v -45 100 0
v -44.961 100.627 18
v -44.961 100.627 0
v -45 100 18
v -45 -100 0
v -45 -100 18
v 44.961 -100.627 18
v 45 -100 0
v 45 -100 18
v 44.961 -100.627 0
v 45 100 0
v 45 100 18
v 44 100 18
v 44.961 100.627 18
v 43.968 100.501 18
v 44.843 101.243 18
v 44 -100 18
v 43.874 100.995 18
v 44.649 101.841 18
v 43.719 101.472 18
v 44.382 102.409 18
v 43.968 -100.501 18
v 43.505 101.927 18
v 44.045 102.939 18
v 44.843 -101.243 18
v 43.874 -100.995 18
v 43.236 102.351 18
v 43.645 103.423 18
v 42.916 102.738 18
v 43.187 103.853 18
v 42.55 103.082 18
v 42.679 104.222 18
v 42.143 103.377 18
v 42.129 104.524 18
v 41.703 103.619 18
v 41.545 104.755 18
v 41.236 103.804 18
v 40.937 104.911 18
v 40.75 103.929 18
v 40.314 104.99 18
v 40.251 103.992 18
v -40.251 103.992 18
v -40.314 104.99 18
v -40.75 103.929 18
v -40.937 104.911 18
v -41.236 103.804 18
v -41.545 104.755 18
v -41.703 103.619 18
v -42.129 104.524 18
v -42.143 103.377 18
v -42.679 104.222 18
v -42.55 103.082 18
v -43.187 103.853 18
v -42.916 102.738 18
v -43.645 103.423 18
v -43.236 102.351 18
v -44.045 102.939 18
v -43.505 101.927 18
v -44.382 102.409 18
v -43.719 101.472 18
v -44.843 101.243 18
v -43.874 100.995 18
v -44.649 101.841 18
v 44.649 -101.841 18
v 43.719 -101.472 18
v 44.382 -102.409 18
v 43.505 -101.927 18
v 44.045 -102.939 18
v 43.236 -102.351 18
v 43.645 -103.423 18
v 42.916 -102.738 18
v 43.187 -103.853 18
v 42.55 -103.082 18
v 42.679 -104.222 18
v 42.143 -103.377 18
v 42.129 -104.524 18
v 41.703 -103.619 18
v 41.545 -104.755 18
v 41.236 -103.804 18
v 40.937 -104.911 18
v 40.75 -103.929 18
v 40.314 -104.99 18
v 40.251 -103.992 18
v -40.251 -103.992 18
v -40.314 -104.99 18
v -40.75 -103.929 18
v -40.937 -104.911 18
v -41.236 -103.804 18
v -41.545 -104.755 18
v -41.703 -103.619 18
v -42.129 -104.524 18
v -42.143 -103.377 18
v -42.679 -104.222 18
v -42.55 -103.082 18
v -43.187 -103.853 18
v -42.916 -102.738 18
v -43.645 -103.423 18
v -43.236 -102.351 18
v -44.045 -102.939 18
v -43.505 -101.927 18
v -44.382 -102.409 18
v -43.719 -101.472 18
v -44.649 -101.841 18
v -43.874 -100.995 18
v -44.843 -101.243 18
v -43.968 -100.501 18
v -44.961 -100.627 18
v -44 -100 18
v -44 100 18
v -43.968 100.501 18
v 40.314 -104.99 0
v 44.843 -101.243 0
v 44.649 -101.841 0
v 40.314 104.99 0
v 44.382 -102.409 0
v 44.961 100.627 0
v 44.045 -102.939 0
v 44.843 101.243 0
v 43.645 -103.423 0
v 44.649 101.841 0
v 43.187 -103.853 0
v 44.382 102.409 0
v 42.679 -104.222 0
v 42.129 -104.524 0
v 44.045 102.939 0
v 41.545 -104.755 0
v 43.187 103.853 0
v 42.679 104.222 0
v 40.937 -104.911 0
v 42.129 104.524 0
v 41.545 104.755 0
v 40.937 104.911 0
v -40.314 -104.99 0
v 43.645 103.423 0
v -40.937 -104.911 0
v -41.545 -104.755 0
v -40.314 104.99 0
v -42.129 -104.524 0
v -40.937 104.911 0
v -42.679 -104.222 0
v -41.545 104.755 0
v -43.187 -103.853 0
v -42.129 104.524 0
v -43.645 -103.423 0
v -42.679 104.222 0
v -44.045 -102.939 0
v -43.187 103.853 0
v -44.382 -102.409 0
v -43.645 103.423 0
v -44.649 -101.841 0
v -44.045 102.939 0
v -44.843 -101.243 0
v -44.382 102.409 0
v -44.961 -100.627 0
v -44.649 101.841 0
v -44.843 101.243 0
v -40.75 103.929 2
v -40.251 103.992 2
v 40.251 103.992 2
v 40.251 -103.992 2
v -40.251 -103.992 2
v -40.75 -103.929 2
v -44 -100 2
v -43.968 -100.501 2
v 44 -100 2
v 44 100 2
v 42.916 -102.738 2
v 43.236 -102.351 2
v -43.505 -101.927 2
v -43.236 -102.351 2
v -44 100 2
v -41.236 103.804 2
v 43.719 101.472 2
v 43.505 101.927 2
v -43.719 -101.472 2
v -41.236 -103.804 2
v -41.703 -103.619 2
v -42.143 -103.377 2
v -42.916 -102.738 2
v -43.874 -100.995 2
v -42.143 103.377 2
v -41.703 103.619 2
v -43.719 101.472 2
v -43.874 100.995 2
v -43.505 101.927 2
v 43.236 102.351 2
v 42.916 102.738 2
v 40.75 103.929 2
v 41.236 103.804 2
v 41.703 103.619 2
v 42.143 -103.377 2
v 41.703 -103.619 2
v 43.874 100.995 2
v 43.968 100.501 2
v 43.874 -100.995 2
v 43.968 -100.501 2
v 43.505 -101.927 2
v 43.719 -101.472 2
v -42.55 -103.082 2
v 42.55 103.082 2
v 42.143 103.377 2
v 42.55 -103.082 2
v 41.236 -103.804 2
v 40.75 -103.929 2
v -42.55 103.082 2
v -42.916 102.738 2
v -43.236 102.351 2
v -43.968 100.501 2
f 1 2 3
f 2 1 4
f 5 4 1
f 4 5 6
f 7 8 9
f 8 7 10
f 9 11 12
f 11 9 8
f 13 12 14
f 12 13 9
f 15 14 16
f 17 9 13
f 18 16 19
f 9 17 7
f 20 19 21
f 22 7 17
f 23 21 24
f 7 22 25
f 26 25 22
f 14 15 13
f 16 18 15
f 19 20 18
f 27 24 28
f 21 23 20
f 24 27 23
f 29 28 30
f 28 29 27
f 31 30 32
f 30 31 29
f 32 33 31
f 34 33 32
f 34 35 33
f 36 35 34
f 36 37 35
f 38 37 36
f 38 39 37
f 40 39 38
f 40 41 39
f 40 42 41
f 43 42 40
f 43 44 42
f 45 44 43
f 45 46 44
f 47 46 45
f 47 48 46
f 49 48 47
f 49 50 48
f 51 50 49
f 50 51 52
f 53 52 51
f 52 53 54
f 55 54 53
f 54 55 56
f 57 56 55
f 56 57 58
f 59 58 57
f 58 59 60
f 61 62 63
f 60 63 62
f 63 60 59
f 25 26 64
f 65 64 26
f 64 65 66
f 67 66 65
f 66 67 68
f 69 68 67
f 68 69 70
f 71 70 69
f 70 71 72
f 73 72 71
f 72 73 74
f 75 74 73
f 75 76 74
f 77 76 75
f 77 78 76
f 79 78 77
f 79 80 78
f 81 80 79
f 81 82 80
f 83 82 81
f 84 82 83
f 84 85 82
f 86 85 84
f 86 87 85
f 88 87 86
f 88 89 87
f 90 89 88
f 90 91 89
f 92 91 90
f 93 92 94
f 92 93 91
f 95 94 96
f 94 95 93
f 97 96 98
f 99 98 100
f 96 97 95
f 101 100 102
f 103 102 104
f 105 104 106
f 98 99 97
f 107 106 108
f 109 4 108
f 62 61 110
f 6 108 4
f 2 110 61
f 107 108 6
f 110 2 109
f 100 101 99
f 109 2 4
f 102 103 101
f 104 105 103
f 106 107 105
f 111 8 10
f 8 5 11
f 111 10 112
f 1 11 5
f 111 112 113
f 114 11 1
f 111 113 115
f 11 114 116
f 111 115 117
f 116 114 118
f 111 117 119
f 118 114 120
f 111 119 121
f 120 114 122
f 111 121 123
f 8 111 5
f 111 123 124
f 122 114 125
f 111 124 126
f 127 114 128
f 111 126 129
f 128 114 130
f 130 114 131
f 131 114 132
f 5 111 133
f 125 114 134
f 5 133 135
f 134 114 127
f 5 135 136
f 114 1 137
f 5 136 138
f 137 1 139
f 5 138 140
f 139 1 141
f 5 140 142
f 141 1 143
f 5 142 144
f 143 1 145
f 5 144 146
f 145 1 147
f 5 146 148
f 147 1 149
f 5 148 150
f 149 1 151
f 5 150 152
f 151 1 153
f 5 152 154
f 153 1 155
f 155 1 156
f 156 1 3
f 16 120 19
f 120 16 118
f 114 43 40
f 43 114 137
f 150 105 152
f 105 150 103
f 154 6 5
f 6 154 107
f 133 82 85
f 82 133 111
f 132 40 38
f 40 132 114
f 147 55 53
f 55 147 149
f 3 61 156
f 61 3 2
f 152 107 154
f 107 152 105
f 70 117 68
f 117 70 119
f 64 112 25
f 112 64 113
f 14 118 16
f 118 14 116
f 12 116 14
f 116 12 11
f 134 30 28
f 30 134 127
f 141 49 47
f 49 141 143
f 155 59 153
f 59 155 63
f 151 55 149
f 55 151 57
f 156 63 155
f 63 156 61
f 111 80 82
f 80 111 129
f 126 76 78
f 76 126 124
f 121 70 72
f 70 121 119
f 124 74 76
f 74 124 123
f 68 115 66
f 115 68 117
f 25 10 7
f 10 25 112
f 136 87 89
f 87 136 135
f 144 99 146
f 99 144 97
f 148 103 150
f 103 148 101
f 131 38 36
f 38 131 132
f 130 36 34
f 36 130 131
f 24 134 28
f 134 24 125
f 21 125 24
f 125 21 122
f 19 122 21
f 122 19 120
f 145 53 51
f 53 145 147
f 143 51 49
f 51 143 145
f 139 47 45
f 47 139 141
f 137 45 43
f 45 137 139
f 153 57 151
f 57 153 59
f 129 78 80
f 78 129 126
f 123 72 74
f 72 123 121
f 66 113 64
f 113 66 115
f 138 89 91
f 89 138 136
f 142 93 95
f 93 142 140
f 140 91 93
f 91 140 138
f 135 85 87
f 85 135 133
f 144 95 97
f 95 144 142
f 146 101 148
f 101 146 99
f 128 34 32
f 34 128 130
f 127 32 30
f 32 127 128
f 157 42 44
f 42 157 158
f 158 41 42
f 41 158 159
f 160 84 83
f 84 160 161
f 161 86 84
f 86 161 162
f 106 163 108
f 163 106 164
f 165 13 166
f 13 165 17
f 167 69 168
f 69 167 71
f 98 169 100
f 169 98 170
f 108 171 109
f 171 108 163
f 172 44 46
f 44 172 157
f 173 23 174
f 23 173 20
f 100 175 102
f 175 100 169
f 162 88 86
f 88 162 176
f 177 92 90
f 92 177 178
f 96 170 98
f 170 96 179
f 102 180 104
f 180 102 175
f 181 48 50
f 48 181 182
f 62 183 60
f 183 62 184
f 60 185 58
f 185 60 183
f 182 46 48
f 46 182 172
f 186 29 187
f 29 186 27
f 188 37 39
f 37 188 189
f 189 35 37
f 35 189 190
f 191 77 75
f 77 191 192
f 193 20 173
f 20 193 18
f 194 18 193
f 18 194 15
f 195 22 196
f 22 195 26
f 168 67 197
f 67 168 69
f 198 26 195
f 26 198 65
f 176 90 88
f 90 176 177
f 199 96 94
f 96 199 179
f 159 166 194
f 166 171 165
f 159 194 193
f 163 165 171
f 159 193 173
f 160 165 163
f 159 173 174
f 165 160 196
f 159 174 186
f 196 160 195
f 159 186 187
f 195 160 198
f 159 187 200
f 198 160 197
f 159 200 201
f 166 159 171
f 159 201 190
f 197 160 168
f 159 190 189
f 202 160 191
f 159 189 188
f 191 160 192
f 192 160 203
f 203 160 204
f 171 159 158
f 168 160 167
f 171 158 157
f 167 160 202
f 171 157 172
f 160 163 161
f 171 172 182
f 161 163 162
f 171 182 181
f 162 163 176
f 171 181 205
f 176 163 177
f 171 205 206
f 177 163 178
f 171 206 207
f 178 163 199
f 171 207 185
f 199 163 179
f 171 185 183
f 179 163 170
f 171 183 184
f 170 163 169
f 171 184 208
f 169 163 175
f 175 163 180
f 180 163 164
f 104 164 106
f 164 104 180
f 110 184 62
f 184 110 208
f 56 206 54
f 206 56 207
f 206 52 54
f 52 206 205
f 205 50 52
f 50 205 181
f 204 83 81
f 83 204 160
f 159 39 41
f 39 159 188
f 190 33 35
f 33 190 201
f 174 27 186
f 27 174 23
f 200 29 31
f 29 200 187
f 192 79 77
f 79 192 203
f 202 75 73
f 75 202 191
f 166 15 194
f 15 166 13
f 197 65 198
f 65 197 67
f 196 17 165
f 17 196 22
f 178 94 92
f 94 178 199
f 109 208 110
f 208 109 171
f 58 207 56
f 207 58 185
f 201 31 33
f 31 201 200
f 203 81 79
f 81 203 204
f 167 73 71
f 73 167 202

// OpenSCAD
$fn = 50;


difference() {
	union() {
		hull() {
			translate(v = [-40.0000000000, 100.0000000000, 0]) {
				cylinder(h = 18, r = 5);
			}
			translate(v = [40.0000000000, 100.0000000000, 0]) {
				cylinder(h = 18, r = 5);
			}
			translate(v = [-40.0000000000, -100.0000000000, 0]) {
				cylinder(h = 18, r = 5);
			}
			translate(v = [40.0000000000, -100.0000000000, 0]) {
				cylinder(h = 18, r = 5);
			}
		}
	}
	union() {
		translate(v = [0, 0, 2]) {
			hull() {
				translate(v = [-40.0000000000, 100.0000000000, 0]) {
					cylinder(h = 16, r = 4);
				}
				translate(v = [40.0000000000, 100.0000000000, 0]) {
					cylinder(h = 16, r = 4);
				}
				translate(v = [-40.0000000000, -100.0000000000, 0]) {
					cylinder(h = 16, r = 4);
				}
				translate(v = [40.0000000000, -100.0000000000, 0]) {
					cylinder(h = 16, r = 4);
				}
			}
		}
	}
}
